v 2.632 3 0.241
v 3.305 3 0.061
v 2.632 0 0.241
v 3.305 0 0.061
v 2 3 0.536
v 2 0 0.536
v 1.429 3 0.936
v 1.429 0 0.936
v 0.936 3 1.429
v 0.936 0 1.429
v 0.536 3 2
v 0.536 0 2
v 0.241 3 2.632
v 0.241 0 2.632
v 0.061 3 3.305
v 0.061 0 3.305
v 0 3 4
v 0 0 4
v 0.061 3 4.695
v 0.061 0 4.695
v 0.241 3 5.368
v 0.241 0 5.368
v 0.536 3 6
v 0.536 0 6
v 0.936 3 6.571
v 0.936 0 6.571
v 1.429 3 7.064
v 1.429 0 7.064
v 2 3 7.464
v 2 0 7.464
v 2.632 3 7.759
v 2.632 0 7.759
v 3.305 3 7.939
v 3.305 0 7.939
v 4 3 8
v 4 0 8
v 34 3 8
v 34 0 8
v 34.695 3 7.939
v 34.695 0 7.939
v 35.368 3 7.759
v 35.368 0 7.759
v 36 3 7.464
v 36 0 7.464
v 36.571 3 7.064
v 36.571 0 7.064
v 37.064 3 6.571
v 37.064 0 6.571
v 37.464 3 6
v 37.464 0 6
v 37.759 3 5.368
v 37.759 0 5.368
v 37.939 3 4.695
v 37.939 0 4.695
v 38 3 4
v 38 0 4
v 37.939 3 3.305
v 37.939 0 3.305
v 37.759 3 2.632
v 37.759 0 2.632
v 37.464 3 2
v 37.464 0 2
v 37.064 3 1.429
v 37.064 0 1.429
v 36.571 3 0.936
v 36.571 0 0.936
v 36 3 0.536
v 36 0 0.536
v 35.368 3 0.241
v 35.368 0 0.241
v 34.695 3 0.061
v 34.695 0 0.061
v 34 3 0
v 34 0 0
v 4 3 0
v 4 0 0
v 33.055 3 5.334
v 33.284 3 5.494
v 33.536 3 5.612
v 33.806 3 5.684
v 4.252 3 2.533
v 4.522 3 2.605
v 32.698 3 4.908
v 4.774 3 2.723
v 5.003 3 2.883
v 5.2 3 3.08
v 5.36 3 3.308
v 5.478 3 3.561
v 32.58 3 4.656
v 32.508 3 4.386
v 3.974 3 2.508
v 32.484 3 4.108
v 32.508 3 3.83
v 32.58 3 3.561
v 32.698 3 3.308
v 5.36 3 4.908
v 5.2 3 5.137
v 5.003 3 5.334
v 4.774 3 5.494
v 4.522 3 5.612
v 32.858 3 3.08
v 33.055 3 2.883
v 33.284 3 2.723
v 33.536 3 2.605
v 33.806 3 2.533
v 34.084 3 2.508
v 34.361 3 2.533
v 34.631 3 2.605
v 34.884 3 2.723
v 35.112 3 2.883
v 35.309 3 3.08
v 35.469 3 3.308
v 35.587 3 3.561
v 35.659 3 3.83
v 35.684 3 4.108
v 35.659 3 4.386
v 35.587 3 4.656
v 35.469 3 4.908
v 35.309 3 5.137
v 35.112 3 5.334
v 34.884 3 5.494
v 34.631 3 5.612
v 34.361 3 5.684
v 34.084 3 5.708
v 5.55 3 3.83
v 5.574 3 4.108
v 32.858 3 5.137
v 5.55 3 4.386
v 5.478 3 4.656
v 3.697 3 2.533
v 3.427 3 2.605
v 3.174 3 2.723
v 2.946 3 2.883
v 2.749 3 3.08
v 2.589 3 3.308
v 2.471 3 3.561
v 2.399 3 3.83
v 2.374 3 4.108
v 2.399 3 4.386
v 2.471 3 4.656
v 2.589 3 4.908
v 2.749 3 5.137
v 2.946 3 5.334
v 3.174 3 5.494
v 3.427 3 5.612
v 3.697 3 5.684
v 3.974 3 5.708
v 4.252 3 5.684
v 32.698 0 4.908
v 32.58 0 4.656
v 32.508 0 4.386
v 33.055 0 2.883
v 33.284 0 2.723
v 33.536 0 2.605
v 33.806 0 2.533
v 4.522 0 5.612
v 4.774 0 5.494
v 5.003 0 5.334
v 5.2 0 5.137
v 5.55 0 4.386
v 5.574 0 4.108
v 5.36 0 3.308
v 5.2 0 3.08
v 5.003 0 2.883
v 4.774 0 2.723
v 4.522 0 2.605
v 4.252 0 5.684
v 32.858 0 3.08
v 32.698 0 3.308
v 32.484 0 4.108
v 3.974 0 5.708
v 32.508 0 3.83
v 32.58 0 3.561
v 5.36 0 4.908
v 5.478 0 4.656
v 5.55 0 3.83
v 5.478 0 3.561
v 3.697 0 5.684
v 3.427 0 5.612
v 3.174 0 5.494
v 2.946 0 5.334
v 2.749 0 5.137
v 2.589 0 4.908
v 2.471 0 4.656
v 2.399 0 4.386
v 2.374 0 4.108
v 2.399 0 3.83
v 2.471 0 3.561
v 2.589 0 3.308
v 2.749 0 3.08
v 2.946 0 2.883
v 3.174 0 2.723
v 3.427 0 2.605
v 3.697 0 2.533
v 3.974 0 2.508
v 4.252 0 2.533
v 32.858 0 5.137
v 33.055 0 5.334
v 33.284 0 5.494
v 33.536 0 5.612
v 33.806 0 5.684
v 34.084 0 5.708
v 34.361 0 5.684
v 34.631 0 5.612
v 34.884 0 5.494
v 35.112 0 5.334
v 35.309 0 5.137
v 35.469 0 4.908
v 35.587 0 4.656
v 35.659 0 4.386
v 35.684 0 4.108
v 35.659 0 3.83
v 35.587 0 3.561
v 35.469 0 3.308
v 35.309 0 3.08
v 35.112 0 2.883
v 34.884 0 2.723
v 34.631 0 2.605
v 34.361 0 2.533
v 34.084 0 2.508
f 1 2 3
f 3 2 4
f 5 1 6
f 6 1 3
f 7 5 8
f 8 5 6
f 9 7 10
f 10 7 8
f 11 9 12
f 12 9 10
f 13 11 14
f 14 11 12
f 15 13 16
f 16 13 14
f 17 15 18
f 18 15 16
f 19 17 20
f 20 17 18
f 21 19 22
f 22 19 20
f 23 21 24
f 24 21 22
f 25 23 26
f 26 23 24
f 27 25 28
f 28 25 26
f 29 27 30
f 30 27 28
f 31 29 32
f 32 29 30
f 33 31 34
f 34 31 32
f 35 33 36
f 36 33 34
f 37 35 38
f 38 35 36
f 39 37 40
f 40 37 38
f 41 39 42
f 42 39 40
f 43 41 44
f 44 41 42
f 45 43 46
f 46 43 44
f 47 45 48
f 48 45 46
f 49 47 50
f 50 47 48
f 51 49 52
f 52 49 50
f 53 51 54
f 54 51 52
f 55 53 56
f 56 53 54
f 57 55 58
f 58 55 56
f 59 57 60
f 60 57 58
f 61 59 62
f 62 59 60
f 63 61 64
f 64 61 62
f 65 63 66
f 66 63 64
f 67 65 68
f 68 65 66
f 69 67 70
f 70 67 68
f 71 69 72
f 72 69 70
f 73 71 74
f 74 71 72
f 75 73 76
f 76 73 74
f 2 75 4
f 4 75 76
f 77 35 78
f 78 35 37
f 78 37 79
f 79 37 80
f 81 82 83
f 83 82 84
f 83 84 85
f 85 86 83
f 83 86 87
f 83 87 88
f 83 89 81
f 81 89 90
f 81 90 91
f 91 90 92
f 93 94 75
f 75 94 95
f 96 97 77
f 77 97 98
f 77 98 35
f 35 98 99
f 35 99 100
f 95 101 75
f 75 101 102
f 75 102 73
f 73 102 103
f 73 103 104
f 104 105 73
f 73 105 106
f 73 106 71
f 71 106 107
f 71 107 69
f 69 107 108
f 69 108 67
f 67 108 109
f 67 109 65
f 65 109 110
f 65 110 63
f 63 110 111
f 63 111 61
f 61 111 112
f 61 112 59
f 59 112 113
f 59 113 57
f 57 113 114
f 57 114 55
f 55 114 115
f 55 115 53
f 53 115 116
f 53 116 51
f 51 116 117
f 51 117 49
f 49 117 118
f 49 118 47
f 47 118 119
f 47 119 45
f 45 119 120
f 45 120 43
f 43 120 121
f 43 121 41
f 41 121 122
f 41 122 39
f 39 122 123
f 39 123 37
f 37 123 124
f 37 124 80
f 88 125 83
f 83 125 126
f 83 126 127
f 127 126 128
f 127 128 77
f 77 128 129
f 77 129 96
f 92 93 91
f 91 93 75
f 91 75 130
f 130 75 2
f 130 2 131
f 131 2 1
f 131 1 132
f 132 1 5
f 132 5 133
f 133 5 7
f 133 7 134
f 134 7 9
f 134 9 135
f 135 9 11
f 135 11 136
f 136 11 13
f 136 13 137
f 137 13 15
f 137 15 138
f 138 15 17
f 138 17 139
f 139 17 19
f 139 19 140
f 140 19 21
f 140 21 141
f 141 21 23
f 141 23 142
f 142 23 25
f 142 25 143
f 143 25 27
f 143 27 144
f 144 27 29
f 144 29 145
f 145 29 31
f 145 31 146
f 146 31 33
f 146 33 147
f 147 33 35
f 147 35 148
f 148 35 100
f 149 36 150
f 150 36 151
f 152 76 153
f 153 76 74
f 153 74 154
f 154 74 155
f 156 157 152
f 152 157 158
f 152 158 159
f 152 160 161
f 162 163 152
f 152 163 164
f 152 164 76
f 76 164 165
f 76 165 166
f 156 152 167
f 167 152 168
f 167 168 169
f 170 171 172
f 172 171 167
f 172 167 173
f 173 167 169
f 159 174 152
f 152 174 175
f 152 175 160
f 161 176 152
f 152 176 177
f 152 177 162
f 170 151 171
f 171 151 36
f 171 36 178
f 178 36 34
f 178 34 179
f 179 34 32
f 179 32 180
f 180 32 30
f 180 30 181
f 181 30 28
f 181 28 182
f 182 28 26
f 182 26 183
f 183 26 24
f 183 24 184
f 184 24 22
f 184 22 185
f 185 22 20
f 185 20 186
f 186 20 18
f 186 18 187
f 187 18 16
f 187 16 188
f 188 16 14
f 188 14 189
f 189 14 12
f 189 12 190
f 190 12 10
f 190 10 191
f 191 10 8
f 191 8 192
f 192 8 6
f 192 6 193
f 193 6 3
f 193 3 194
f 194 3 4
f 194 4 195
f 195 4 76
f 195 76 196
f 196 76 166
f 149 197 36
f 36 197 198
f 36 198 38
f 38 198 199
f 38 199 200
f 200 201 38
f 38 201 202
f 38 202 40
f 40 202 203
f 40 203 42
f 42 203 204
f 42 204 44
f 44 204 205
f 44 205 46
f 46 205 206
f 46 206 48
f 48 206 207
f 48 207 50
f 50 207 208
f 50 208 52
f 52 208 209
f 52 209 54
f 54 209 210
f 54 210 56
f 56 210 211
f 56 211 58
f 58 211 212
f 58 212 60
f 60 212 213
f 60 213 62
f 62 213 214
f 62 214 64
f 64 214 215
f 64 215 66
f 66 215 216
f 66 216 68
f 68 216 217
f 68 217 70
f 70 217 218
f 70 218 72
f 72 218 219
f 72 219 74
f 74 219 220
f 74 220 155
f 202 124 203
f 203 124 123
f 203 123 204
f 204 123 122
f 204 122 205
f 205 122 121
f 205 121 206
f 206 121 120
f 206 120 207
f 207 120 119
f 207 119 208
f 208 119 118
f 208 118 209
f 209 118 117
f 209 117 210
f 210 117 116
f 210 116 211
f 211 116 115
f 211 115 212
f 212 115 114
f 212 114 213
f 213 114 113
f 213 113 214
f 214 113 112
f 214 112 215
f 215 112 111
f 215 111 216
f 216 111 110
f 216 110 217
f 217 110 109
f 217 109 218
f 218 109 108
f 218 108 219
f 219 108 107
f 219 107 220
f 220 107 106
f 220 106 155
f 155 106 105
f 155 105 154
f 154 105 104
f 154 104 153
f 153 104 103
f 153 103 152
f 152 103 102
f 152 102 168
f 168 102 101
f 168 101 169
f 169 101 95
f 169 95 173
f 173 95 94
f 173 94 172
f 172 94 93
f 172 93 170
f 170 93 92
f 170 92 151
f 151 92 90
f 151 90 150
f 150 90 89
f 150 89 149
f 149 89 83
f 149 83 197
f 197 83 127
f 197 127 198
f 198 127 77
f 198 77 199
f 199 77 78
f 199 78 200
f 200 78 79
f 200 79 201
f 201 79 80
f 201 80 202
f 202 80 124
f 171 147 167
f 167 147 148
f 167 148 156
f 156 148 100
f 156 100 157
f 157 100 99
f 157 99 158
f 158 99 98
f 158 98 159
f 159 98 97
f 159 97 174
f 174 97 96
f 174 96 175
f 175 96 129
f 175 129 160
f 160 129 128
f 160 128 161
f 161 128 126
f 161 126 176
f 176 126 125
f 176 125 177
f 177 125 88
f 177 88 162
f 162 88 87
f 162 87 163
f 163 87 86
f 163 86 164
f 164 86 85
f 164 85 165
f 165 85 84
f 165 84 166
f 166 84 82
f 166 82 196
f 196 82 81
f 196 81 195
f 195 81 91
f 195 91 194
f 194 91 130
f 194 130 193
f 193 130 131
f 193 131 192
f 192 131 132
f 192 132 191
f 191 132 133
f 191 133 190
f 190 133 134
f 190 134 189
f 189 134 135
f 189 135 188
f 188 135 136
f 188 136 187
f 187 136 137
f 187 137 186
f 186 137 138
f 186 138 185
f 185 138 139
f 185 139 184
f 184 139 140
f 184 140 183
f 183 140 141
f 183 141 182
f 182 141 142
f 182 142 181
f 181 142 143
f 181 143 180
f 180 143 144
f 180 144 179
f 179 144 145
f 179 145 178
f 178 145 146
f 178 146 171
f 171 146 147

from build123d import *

# Parameters (mm, degrees)
BOSS_EXTRUDE1_DEPTH  = 3.000000026
SKETCH2_R            = 2.767129072
SKETCH2_R_2          = 3.006829377
BOSS_EXTRUDE2_DEPTH  = 3
M3_CLEARANCE_HOLE1_D = 3.2


with BuildPart() as part:
    # Sketch1 → Boss-Extrude1 (new body)
    with BuildSketch(Plane.XZ):
        Polygon((3.305407241, 0.060769264), (3.999999724, 0), (34.000001848, 0), (34.694589674, 0.060769264), (35.368077457, 0.241229776), (35.99999845, 0.535898609), (36.571152508, 0.935822492), (37.064179778, 1.428849762), (37.464100868, 2.000000095), (37.758767605, 2.631919459), (37.939228117, 3.305407474), (37.999998778, 4.00000019), (37.939228117, 4.694593139), (37.758767605, 5.368080921), (37.464100868, 6.000000052), (37.064179778, 6.571150385), (36.571152508, 7.064177655), (35.99999845, 7.464101538), (35.368077457, 7.758770604), (34.694589674, 7.939230651), (34.000001848, 8.00000038), (3.999999724, 8.00000038), (3.305407241, 7.939230651), (2.631919459, 7.758770604), (1.999998465, 7.464101538), (1.428848132, 7.064177655), (0.935820863, 6.571150385), (0.535897911, 6.000000052), (0.241229311, 5.368080921), (0.060768798, 4.694593139), (0, 4.00000019), (0.060768798, 3.305407474), (0.241229311, 2.631919459), (0.535897911, 2.000000095), (0.935820863, 1.428849762), (1.428848132, 0.935822492), (1.999998465, 0.535898609), (2.631919459, 0.241229776), align=None)
        Polygon((32.391306013, 2.650146373), (32.181344926, 2.950000111), (32.026644796, 3.281757934), (31.931903213, 3.635338973), (31.899999827, 4.00000019), (31.931903213, 4.364661407), (32.026644796, 4.718242679), (32.181344926, 5.050000269), (32.391306013, 5.349854007), (32.650146633, 5.608693697), (32.949998975, 5.818653386), (33.281758428, 5.973354913), (33.635336906, 6.068096496), (34.000001848, 6.099999882), (34.364659339, 6.068096496), (34.718241543, 5.973354913), (35.04999727, 5.818653386), (35.349853337, 5.608693697), (35.608693957, 5.349854007), (35.818651319, 5.050000269), (35.973355174, 4.718242679), (36.068096757, 4.364661407), (36.100000143, 4.00000019), (36.068096757, 3.635338973), (35.973355174, 3.281757934), (35.818651319, 2.950000111), (35.608693957, 2.650146373), (35.349853337, 2.391306916), (35.04999727, 2.181346994), (34.718241543, 2.0266457), (34.364659339, 1.931903884), (34.000001848, 1.900000265), (33.635336906, 1.931903884), (33.281758428, 2.0266457), (32.949998975, 2.181346994), (32.650146633, 2.391306916), align=None, mode=Mode.SUBTRACT)
        Polygon((5.685296841, 2.58586742), (5.414132029, 2.314702375), (5.099999718, 2.094744239), (4.752444103, 1.932676416), (4.38202545, 1.833423041), (3.999999724, 1.800000202), (3.617973067, 1.833423041), (3.247555345, 1.932676416), (2.899998799, 2.094744239), (2.58586742, 2.314702375), (2.314701444, 2.58586742), (2.094743773, 2.900000196), (1.932675019, 3.247555811), (1.833422109, 3.617974231), (1.799998805, 4.00000019), (1.833422109, 4.382026382), (1.932675019, 4.752444569), (2.094743773, 5.100000184), (2.314701444, 5.41413296), (2.58586742, 5.685297772), (2.899998799, 5.905256141), (3.247555345, 6.067323964), (3.617973067, 6.166577339), (3.999999724, 6.200000178), (4.38202545, 6.166577339), (4.752444103, 6.067323964), (5.099999718, 5.905256141), (5.414132029, 5.685297772), (5.685296841, 5.41413296), (5.905255675, 5.100000184), (6.067323498, 4.752444569), (6.166576408, 4.382026382), (6.199999712, 4.00000019), (6.166576408, 3.617974231), (6.067323498, 3.247555811), (5.905255675, 2.900000196), align=None, mode=Mode.SUBTRACT)
    extrude(amount=-BOSS_EXTRUDE1_DEPTH)

    # Sketch2 → Boss-Extrude2 (add)
    with BuildSketch(Plane(origin=(0, 3.000000026, 0), x_dir=(1, 0, 0), z_dir=(0, 1, 0))):
        with Locations((3.930419847, -4.196730993)):
            Circle(SKETCH2_R)
        with Locations((34.148271252, -4.196730993)):
            Circle(SKETCH2_R_2)
    extrude(amount=-BOSS_EXTRUDE2_DEPTH)

    # M3 Clearance Hole1 (through all)
    with Locations(Plane(origin=(0, 3.000000026, 0), x_dir=(1, 0, 0), z_dir=(0, 1, 0))):
        with Locations((3.974411457, -4.108268671), (34.083612048, -4.108268671)):
            Hole(M3_CLEARANCE_HOLE1_D / 2)


solid = part.part
